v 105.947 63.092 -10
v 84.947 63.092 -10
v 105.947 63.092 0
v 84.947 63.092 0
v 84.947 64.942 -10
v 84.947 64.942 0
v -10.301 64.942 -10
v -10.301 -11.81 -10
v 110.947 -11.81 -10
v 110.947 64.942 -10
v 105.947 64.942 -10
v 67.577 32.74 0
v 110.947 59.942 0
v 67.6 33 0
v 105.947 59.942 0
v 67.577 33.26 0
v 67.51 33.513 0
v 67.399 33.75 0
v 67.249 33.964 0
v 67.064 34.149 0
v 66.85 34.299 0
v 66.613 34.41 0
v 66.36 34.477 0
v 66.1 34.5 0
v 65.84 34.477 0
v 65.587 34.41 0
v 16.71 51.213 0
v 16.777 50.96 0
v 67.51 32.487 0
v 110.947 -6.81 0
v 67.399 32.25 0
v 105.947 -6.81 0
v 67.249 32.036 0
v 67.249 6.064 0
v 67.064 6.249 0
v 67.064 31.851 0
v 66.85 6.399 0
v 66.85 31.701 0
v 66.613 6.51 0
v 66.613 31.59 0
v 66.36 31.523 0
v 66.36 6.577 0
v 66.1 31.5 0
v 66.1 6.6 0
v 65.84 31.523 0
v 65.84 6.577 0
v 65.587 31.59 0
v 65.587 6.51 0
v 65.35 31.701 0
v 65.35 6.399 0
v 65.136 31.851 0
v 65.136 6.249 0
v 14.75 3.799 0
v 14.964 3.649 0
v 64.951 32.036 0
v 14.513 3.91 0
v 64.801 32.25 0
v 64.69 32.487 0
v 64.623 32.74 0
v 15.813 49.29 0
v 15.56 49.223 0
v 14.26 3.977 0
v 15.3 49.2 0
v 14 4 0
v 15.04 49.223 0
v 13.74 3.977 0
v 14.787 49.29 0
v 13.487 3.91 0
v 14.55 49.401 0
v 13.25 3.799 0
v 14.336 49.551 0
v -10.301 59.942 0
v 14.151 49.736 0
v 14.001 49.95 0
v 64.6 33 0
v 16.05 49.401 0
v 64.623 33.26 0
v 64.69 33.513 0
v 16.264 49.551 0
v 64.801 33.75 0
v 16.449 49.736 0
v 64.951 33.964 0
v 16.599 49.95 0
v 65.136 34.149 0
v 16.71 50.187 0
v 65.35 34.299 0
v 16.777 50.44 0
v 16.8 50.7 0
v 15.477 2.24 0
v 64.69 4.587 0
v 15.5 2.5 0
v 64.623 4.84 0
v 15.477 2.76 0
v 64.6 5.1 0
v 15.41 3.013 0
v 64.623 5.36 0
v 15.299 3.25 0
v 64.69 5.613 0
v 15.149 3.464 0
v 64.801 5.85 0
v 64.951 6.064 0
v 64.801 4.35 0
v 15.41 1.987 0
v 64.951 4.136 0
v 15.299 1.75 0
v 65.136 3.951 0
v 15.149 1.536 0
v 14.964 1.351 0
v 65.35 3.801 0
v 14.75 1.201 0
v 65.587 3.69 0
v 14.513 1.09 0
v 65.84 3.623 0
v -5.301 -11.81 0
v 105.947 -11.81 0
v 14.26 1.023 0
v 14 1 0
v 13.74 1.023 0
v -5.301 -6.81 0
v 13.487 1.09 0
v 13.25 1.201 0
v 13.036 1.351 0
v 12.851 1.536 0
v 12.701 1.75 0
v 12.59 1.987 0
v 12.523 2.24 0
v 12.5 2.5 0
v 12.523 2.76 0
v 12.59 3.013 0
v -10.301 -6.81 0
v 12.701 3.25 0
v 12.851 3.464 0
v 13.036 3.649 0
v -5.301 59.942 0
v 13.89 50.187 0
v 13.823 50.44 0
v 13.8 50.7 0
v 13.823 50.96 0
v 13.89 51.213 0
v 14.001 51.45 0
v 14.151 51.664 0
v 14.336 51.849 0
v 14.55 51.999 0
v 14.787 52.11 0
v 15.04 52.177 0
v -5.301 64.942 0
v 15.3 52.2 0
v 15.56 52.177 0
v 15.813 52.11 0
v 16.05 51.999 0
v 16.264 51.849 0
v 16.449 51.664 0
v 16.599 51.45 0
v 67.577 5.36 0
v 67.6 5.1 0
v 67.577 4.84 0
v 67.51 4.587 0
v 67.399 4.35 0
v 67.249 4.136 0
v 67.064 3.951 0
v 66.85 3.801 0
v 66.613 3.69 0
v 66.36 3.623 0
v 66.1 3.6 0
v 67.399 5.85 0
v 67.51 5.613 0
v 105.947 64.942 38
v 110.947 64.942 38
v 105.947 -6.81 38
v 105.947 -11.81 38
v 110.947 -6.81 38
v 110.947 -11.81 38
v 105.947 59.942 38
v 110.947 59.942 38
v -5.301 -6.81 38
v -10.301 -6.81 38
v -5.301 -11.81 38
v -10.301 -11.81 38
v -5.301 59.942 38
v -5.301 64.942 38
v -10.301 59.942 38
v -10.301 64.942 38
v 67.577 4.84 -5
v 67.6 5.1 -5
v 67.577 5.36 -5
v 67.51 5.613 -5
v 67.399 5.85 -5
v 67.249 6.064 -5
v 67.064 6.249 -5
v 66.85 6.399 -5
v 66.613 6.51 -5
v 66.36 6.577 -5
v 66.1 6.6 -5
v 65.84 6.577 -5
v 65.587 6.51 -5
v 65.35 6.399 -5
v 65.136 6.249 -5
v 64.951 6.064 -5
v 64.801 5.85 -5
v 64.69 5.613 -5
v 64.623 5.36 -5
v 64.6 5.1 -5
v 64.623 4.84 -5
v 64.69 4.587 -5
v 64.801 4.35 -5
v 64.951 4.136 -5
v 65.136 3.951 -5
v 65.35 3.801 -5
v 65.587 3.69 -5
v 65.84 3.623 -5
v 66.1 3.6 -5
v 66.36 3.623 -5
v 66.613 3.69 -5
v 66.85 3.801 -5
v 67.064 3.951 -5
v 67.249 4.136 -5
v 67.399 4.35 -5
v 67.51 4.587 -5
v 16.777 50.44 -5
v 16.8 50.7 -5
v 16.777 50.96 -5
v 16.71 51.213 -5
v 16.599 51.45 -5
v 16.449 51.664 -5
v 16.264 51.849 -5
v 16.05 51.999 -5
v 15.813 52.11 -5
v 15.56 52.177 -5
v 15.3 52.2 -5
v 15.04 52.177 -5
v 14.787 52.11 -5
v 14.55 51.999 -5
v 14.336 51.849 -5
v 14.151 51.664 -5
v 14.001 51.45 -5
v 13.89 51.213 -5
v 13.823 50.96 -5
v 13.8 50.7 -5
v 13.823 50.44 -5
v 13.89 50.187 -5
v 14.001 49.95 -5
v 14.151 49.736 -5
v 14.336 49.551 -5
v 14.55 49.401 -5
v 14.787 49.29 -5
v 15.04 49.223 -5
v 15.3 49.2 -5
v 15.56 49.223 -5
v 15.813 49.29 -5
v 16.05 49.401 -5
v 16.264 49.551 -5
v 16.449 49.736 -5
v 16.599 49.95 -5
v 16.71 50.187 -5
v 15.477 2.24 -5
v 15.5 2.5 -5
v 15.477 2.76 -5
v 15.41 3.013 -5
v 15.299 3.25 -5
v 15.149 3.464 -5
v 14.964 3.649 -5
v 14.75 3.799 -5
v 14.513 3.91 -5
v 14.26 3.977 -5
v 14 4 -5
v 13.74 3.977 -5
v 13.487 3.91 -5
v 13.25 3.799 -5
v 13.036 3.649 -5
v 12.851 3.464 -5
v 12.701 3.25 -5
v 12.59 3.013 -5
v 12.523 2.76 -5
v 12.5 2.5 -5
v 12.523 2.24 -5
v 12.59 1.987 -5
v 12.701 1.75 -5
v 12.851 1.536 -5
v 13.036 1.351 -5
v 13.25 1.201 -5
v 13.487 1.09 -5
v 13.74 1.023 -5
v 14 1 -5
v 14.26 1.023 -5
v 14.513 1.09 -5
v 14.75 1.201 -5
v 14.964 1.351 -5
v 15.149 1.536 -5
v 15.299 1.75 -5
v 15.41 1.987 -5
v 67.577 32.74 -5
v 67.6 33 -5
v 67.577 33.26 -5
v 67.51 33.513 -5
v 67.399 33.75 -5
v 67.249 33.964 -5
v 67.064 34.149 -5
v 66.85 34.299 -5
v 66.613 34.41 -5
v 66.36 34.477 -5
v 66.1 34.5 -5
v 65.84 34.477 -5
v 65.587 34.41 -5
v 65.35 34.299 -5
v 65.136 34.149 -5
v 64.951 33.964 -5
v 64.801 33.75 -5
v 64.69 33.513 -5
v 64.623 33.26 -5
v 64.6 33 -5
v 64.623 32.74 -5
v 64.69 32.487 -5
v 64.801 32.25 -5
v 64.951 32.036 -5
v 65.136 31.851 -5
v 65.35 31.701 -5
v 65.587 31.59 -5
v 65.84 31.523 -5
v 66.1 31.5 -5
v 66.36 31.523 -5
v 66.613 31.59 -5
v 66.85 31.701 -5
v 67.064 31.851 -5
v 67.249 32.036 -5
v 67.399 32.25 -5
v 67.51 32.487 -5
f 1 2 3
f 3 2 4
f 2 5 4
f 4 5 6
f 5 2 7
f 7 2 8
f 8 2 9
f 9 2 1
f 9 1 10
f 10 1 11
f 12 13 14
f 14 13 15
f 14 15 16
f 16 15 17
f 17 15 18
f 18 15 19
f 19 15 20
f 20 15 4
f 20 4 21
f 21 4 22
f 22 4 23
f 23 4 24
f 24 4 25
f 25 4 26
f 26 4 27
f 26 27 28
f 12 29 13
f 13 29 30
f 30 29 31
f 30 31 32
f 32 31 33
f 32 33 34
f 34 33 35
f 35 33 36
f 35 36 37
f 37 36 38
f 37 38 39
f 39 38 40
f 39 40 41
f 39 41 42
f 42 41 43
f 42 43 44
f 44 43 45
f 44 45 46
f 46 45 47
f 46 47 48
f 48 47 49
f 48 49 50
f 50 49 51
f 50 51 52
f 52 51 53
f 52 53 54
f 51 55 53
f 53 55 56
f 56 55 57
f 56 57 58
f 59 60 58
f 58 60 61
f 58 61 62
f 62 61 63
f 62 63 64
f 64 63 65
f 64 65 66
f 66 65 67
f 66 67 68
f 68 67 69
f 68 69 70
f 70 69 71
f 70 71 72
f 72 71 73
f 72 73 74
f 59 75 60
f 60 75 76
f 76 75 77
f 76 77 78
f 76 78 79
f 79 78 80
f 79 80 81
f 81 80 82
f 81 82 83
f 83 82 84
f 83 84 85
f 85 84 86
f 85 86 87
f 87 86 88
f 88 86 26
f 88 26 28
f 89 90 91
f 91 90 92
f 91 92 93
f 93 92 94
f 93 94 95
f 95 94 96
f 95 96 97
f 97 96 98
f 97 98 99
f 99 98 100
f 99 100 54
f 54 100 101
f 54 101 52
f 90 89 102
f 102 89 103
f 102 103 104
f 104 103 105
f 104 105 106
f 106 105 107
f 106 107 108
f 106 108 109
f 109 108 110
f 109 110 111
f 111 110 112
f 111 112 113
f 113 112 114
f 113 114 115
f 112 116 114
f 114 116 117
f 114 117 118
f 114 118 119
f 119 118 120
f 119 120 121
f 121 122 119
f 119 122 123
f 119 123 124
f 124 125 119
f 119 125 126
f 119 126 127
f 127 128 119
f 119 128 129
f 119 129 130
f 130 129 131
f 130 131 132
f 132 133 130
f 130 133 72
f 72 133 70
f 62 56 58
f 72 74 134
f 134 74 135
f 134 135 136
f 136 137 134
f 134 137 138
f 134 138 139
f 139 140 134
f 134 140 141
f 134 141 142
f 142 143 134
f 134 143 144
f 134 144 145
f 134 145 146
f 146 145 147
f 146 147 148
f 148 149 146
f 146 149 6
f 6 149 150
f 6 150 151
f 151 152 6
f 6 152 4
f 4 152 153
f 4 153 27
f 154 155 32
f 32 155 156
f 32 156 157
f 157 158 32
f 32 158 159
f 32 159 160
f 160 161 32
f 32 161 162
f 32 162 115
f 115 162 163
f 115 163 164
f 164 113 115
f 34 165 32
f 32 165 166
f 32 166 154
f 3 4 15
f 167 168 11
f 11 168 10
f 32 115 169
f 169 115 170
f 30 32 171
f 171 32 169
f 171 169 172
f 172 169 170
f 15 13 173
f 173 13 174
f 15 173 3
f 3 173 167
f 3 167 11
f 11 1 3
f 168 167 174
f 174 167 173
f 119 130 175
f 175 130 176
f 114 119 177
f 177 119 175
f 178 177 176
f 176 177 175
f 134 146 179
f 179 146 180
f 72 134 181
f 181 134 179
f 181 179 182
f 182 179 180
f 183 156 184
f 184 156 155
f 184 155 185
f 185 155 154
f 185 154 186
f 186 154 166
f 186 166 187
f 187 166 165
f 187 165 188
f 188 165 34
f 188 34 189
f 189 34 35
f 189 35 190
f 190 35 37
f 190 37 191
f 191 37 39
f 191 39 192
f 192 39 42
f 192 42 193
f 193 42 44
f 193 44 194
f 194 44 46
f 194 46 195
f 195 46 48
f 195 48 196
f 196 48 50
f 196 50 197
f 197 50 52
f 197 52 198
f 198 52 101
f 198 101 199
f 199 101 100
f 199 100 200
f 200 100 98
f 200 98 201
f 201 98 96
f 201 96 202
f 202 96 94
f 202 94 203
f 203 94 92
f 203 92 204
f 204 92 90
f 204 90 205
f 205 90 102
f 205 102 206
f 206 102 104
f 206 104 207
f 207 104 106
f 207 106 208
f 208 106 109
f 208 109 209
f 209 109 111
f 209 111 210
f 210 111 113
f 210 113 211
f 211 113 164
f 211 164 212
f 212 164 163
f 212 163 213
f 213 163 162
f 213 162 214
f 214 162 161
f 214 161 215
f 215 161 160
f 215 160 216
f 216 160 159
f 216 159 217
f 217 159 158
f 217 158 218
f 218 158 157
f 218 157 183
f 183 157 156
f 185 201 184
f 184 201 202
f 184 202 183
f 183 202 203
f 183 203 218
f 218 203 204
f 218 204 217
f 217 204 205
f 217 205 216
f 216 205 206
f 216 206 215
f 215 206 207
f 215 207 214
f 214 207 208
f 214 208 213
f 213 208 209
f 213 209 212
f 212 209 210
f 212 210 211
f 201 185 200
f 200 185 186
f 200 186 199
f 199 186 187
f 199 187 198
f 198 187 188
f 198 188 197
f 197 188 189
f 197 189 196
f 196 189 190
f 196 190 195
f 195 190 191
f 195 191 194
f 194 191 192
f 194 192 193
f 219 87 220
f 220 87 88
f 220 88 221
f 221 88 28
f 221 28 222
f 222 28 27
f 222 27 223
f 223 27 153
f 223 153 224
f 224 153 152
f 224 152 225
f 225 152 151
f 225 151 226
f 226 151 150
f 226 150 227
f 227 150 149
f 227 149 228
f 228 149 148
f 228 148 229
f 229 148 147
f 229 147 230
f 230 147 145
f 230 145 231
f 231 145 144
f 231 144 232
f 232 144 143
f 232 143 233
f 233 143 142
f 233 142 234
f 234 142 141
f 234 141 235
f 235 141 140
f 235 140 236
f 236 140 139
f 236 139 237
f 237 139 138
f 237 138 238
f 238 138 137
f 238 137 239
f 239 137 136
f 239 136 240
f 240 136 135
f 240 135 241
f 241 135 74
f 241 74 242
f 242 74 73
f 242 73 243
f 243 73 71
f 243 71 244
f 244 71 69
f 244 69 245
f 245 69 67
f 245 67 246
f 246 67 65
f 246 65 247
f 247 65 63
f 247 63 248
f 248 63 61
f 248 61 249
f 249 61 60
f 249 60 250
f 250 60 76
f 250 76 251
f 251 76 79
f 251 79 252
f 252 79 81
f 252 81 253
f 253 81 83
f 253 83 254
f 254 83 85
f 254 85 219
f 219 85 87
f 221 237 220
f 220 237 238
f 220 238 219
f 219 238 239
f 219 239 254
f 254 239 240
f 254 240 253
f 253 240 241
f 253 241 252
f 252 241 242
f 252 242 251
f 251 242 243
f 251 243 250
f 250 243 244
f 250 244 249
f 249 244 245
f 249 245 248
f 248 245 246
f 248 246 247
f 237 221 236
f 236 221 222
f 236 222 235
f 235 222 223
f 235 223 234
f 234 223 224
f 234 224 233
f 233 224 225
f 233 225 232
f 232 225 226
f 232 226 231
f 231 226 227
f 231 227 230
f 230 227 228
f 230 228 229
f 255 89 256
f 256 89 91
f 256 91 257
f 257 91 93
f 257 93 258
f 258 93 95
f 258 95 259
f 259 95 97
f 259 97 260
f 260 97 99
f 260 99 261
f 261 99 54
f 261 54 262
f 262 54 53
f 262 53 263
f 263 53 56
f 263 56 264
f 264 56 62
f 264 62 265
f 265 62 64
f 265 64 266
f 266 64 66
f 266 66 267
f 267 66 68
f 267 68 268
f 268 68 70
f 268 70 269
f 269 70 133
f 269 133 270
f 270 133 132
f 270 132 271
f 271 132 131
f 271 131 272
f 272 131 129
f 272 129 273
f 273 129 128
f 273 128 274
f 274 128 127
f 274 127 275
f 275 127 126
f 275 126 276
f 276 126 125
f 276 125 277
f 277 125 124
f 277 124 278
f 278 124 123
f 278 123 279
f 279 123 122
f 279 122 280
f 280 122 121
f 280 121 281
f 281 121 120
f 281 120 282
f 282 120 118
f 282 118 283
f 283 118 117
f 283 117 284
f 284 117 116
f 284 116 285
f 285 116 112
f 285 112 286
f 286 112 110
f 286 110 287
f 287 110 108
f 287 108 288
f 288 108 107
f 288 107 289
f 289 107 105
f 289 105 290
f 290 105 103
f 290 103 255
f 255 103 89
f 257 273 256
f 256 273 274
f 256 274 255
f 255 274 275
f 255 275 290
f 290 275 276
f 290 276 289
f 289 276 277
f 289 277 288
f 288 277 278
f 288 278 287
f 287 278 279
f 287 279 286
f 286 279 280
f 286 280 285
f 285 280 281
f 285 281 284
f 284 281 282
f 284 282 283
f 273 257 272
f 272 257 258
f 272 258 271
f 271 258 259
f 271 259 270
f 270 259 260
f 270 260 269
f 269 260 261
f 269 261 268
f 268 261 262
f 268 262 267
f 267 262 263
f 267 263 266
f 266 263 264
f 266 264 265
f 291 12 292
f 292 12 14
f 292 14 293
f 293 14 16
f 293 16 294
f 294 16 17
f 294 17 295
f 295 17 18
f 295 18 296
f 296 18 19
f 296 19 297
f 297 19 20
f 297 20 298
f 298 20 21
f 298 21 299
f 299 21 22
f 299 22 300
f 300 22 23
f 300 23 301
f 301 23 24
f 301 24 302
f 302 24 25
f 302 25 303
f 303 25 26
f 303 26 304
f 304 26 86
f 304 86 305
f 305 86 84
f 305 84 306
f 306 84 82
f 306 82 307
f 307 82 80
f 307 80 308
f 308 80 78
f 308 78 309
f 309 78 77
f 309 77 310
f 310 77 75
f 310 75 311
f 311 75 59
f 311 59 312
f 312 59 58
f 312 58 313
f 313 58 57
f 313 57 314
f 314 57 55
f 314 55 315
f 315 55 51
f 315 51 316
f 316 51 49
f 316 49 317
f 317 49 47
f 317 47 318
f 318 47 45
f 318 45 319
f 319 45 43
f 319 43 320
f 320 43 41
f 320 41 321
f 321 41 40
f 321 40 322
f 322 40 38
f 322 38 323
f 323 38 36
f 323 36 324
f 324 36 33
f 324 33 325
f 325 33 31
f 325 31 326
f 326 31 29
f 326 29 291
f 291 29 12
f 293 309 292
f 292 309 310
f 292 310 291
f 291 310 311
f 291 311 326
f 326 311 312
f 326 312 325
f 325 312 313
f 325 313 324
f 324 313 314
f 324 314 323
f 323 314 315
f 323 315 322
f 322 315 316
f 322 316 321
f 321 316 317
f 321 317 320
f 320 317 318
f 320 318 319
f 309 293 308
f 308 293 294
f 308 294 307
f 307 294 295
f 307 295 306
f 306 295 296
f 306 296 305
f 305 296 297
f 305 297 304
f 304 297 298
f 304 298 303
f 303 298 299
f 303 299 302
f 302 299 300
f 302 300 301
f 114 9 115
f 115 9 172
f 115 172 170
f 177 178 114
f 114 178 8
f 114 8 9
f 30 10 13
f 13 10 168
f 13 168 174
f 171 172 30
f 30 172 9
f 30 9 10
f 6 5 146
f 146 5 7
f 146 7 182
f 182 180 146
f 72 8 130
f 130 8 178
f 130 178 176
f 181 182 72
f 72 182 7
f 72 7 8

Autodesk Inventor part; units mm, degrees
ref_plane "YZ Plane" through (0, 0, 0) normal (1, 0, 0) x (0, 1, 0)
ref_plane "XZ Plane" through (0, 0, 0) normal (0, 1, 0) x (-1, 0, 0)
ref_plane "XY Plane" through (0, 0, 0) normal (0, 0, 1) x (1, 0, 0)
sketch "Arduino Uno" plane through (0, 0, 0) normal (0, 0, 1) x (1, 0, 0)
  line L0 (0, 0) -> (68.6, 0)
  line L1 (68.6, 0) -> (68.6, 53.3)
  line L2 (68.6, 53.3) -> (0, 53.3)
  line L3 (0, 53.3) -> (0, 0)
  circle A0 centre (15.3, 50.7) radius 1.5
  circle A1 centre (14, 2.5) radius 1.5
  circle A2 centre (66.1, 5.1) radius 1.5
  line L4 (0, 53.3) -> (66.1, 53.3)
  circle A3 centre (66.1, 33) radius 1.5
  dimension "d6" = 68.6
  dimension "d7" = 53.3
  dimension "d34" = 3
  dimension "d36" = 3
  dimension "d38" = 2.5
  dimension "d39" = 3
  dimension "d40" = 14
  dimension "d41" = 1.3
  dimension "d42" = 66.1
  dimension "d43" = 3
  dimension "d44" = 5.1
  dimension "d45" = 27.9
  dimension "d50" = 2.6
  dimension "d51" = 2.5
  dimension "d52" = 2.5
sketch "Sketch2" plane through (0, 0, 0) normal (0, 0, 1) x (1, 0, 0)
  line L0 (-7.6751, -4.0855) -> (1.5398, -4.0855)
  line L1 (-10.3008, -11.8098) -> (-10.3008, 64.9422)
  line L2 (-10.3008, 64.9422) -> (110.9472, 64.9422)
  line L3 (110.9472, 64.9422) -> (110.9472, -11.8098)
  line L4 (110.9472, -11.8098) -> (-10.3008, -11.8098)
  circle A0 centre (15.3, 50.7) radius 1.5 projected
  point P0 (0, 0)
  dimension "d27" = 4.366
  dimension "d28" = 76.752
  dimension "d29" = 121.248
extrude "Back Plate" add sketch "Sketch2" against normal blind 10 contours L1 L2 L3 L4 | A0
extrude "Uno Mounting Holes" cut sketch "Arduino Uno" against normal blind 5 contours A0 | A1 | A2 | A3
sketch "Sketch3" plane through (0, 0, 0) normal (0, 0, 1) x (1, 0, 0)
  line L0 (110.9472, 64.9422) -> (105.9472, 64.9422)
  line L1 (105.9472, 64.9422) -> (105.9472, 59.9422)
  line L2 (105.9472, 59.9422) -> (110.9472, 59.9422)
  line L3 (110.9472, 59.9422) -> (110.9472, 64.9422)
  line L4 (110.9472, -11.8098) -> (-10.3008, -11.8098) projected
  line L5 (110.9472, -11.8098) -> (105.9472, -11.8098)
  line L6 (105.9472, -11.8098) -> (105.9472, -6.8098)
  line L7 (105.9472, -6.8098) -> (110.9472, -6.8098)
  line L8 (110.9472, -6.8098) -> (110.9472, -11.8098)
  line L9 (-10.3008, -11.8098) -> (-10.3008, 64.9422) projected
  line L10 (-10.3008, 64.9422) -> (-5.3008, 64.9422)
  line L11 (-5.3008, 64.9422) -> (-5.3008, 59.9422)
  line L12 (-5.3008, 59.9422) -> (-10.3008, 59.9422)
  line L13 (-10.3008, 59.9422) -> (-10.3008, 64.9422)
  line L14 (-10.3008, -11.8098) -> (-5.3008, -11.8098)
  line L15 (-5.3008, -11.8098) -> (-5.3008, -6.8098)
  line L16 (-5.3008, -6.8098) -> (-10.3008, -6.8098)
  line L17 (-10.3008, -6.8098) -> (-10.3008, -11.8098)
  point P0 (0, 0)
  dimension "d53" = 5
  dimension "d54" = 5
  dimension "d55" = 5
  dimension "d56" = 5
  dimension "d57" = 5
  dimension "d58" = 5
  dimension "d59" = 5
  dimension "d60" = 5
extrude "Frame Pillars" add sketch "Sketch3" along normal blind 38
sketch "Sketch4" plane through (0, 0, 0) normal (0, 0, 1) x (1, 0, 0)
  line L0 (-5.3008, 64.9422) -> (105.9472, 64.9422) projected
  line L1 (105.9472, 64.9422) -> (84.9472, 64.9422)
  line L2 (84.9472, 64.9422) -> (84.9472, 63.0922)
  line L3 (84.9472, 63.0922) -> (105.9472, 63.0922)
  line L4 (105.9472, 63.0922) -> (105.9472, 64.9422)
  point P0 (0, 0)
  dimension "d63" = 21
  dimension "d64" = 1.85
extrude "SD Channel" cut sketch "Sketch4" against normal through all
properties part number "Back Plate test02"
